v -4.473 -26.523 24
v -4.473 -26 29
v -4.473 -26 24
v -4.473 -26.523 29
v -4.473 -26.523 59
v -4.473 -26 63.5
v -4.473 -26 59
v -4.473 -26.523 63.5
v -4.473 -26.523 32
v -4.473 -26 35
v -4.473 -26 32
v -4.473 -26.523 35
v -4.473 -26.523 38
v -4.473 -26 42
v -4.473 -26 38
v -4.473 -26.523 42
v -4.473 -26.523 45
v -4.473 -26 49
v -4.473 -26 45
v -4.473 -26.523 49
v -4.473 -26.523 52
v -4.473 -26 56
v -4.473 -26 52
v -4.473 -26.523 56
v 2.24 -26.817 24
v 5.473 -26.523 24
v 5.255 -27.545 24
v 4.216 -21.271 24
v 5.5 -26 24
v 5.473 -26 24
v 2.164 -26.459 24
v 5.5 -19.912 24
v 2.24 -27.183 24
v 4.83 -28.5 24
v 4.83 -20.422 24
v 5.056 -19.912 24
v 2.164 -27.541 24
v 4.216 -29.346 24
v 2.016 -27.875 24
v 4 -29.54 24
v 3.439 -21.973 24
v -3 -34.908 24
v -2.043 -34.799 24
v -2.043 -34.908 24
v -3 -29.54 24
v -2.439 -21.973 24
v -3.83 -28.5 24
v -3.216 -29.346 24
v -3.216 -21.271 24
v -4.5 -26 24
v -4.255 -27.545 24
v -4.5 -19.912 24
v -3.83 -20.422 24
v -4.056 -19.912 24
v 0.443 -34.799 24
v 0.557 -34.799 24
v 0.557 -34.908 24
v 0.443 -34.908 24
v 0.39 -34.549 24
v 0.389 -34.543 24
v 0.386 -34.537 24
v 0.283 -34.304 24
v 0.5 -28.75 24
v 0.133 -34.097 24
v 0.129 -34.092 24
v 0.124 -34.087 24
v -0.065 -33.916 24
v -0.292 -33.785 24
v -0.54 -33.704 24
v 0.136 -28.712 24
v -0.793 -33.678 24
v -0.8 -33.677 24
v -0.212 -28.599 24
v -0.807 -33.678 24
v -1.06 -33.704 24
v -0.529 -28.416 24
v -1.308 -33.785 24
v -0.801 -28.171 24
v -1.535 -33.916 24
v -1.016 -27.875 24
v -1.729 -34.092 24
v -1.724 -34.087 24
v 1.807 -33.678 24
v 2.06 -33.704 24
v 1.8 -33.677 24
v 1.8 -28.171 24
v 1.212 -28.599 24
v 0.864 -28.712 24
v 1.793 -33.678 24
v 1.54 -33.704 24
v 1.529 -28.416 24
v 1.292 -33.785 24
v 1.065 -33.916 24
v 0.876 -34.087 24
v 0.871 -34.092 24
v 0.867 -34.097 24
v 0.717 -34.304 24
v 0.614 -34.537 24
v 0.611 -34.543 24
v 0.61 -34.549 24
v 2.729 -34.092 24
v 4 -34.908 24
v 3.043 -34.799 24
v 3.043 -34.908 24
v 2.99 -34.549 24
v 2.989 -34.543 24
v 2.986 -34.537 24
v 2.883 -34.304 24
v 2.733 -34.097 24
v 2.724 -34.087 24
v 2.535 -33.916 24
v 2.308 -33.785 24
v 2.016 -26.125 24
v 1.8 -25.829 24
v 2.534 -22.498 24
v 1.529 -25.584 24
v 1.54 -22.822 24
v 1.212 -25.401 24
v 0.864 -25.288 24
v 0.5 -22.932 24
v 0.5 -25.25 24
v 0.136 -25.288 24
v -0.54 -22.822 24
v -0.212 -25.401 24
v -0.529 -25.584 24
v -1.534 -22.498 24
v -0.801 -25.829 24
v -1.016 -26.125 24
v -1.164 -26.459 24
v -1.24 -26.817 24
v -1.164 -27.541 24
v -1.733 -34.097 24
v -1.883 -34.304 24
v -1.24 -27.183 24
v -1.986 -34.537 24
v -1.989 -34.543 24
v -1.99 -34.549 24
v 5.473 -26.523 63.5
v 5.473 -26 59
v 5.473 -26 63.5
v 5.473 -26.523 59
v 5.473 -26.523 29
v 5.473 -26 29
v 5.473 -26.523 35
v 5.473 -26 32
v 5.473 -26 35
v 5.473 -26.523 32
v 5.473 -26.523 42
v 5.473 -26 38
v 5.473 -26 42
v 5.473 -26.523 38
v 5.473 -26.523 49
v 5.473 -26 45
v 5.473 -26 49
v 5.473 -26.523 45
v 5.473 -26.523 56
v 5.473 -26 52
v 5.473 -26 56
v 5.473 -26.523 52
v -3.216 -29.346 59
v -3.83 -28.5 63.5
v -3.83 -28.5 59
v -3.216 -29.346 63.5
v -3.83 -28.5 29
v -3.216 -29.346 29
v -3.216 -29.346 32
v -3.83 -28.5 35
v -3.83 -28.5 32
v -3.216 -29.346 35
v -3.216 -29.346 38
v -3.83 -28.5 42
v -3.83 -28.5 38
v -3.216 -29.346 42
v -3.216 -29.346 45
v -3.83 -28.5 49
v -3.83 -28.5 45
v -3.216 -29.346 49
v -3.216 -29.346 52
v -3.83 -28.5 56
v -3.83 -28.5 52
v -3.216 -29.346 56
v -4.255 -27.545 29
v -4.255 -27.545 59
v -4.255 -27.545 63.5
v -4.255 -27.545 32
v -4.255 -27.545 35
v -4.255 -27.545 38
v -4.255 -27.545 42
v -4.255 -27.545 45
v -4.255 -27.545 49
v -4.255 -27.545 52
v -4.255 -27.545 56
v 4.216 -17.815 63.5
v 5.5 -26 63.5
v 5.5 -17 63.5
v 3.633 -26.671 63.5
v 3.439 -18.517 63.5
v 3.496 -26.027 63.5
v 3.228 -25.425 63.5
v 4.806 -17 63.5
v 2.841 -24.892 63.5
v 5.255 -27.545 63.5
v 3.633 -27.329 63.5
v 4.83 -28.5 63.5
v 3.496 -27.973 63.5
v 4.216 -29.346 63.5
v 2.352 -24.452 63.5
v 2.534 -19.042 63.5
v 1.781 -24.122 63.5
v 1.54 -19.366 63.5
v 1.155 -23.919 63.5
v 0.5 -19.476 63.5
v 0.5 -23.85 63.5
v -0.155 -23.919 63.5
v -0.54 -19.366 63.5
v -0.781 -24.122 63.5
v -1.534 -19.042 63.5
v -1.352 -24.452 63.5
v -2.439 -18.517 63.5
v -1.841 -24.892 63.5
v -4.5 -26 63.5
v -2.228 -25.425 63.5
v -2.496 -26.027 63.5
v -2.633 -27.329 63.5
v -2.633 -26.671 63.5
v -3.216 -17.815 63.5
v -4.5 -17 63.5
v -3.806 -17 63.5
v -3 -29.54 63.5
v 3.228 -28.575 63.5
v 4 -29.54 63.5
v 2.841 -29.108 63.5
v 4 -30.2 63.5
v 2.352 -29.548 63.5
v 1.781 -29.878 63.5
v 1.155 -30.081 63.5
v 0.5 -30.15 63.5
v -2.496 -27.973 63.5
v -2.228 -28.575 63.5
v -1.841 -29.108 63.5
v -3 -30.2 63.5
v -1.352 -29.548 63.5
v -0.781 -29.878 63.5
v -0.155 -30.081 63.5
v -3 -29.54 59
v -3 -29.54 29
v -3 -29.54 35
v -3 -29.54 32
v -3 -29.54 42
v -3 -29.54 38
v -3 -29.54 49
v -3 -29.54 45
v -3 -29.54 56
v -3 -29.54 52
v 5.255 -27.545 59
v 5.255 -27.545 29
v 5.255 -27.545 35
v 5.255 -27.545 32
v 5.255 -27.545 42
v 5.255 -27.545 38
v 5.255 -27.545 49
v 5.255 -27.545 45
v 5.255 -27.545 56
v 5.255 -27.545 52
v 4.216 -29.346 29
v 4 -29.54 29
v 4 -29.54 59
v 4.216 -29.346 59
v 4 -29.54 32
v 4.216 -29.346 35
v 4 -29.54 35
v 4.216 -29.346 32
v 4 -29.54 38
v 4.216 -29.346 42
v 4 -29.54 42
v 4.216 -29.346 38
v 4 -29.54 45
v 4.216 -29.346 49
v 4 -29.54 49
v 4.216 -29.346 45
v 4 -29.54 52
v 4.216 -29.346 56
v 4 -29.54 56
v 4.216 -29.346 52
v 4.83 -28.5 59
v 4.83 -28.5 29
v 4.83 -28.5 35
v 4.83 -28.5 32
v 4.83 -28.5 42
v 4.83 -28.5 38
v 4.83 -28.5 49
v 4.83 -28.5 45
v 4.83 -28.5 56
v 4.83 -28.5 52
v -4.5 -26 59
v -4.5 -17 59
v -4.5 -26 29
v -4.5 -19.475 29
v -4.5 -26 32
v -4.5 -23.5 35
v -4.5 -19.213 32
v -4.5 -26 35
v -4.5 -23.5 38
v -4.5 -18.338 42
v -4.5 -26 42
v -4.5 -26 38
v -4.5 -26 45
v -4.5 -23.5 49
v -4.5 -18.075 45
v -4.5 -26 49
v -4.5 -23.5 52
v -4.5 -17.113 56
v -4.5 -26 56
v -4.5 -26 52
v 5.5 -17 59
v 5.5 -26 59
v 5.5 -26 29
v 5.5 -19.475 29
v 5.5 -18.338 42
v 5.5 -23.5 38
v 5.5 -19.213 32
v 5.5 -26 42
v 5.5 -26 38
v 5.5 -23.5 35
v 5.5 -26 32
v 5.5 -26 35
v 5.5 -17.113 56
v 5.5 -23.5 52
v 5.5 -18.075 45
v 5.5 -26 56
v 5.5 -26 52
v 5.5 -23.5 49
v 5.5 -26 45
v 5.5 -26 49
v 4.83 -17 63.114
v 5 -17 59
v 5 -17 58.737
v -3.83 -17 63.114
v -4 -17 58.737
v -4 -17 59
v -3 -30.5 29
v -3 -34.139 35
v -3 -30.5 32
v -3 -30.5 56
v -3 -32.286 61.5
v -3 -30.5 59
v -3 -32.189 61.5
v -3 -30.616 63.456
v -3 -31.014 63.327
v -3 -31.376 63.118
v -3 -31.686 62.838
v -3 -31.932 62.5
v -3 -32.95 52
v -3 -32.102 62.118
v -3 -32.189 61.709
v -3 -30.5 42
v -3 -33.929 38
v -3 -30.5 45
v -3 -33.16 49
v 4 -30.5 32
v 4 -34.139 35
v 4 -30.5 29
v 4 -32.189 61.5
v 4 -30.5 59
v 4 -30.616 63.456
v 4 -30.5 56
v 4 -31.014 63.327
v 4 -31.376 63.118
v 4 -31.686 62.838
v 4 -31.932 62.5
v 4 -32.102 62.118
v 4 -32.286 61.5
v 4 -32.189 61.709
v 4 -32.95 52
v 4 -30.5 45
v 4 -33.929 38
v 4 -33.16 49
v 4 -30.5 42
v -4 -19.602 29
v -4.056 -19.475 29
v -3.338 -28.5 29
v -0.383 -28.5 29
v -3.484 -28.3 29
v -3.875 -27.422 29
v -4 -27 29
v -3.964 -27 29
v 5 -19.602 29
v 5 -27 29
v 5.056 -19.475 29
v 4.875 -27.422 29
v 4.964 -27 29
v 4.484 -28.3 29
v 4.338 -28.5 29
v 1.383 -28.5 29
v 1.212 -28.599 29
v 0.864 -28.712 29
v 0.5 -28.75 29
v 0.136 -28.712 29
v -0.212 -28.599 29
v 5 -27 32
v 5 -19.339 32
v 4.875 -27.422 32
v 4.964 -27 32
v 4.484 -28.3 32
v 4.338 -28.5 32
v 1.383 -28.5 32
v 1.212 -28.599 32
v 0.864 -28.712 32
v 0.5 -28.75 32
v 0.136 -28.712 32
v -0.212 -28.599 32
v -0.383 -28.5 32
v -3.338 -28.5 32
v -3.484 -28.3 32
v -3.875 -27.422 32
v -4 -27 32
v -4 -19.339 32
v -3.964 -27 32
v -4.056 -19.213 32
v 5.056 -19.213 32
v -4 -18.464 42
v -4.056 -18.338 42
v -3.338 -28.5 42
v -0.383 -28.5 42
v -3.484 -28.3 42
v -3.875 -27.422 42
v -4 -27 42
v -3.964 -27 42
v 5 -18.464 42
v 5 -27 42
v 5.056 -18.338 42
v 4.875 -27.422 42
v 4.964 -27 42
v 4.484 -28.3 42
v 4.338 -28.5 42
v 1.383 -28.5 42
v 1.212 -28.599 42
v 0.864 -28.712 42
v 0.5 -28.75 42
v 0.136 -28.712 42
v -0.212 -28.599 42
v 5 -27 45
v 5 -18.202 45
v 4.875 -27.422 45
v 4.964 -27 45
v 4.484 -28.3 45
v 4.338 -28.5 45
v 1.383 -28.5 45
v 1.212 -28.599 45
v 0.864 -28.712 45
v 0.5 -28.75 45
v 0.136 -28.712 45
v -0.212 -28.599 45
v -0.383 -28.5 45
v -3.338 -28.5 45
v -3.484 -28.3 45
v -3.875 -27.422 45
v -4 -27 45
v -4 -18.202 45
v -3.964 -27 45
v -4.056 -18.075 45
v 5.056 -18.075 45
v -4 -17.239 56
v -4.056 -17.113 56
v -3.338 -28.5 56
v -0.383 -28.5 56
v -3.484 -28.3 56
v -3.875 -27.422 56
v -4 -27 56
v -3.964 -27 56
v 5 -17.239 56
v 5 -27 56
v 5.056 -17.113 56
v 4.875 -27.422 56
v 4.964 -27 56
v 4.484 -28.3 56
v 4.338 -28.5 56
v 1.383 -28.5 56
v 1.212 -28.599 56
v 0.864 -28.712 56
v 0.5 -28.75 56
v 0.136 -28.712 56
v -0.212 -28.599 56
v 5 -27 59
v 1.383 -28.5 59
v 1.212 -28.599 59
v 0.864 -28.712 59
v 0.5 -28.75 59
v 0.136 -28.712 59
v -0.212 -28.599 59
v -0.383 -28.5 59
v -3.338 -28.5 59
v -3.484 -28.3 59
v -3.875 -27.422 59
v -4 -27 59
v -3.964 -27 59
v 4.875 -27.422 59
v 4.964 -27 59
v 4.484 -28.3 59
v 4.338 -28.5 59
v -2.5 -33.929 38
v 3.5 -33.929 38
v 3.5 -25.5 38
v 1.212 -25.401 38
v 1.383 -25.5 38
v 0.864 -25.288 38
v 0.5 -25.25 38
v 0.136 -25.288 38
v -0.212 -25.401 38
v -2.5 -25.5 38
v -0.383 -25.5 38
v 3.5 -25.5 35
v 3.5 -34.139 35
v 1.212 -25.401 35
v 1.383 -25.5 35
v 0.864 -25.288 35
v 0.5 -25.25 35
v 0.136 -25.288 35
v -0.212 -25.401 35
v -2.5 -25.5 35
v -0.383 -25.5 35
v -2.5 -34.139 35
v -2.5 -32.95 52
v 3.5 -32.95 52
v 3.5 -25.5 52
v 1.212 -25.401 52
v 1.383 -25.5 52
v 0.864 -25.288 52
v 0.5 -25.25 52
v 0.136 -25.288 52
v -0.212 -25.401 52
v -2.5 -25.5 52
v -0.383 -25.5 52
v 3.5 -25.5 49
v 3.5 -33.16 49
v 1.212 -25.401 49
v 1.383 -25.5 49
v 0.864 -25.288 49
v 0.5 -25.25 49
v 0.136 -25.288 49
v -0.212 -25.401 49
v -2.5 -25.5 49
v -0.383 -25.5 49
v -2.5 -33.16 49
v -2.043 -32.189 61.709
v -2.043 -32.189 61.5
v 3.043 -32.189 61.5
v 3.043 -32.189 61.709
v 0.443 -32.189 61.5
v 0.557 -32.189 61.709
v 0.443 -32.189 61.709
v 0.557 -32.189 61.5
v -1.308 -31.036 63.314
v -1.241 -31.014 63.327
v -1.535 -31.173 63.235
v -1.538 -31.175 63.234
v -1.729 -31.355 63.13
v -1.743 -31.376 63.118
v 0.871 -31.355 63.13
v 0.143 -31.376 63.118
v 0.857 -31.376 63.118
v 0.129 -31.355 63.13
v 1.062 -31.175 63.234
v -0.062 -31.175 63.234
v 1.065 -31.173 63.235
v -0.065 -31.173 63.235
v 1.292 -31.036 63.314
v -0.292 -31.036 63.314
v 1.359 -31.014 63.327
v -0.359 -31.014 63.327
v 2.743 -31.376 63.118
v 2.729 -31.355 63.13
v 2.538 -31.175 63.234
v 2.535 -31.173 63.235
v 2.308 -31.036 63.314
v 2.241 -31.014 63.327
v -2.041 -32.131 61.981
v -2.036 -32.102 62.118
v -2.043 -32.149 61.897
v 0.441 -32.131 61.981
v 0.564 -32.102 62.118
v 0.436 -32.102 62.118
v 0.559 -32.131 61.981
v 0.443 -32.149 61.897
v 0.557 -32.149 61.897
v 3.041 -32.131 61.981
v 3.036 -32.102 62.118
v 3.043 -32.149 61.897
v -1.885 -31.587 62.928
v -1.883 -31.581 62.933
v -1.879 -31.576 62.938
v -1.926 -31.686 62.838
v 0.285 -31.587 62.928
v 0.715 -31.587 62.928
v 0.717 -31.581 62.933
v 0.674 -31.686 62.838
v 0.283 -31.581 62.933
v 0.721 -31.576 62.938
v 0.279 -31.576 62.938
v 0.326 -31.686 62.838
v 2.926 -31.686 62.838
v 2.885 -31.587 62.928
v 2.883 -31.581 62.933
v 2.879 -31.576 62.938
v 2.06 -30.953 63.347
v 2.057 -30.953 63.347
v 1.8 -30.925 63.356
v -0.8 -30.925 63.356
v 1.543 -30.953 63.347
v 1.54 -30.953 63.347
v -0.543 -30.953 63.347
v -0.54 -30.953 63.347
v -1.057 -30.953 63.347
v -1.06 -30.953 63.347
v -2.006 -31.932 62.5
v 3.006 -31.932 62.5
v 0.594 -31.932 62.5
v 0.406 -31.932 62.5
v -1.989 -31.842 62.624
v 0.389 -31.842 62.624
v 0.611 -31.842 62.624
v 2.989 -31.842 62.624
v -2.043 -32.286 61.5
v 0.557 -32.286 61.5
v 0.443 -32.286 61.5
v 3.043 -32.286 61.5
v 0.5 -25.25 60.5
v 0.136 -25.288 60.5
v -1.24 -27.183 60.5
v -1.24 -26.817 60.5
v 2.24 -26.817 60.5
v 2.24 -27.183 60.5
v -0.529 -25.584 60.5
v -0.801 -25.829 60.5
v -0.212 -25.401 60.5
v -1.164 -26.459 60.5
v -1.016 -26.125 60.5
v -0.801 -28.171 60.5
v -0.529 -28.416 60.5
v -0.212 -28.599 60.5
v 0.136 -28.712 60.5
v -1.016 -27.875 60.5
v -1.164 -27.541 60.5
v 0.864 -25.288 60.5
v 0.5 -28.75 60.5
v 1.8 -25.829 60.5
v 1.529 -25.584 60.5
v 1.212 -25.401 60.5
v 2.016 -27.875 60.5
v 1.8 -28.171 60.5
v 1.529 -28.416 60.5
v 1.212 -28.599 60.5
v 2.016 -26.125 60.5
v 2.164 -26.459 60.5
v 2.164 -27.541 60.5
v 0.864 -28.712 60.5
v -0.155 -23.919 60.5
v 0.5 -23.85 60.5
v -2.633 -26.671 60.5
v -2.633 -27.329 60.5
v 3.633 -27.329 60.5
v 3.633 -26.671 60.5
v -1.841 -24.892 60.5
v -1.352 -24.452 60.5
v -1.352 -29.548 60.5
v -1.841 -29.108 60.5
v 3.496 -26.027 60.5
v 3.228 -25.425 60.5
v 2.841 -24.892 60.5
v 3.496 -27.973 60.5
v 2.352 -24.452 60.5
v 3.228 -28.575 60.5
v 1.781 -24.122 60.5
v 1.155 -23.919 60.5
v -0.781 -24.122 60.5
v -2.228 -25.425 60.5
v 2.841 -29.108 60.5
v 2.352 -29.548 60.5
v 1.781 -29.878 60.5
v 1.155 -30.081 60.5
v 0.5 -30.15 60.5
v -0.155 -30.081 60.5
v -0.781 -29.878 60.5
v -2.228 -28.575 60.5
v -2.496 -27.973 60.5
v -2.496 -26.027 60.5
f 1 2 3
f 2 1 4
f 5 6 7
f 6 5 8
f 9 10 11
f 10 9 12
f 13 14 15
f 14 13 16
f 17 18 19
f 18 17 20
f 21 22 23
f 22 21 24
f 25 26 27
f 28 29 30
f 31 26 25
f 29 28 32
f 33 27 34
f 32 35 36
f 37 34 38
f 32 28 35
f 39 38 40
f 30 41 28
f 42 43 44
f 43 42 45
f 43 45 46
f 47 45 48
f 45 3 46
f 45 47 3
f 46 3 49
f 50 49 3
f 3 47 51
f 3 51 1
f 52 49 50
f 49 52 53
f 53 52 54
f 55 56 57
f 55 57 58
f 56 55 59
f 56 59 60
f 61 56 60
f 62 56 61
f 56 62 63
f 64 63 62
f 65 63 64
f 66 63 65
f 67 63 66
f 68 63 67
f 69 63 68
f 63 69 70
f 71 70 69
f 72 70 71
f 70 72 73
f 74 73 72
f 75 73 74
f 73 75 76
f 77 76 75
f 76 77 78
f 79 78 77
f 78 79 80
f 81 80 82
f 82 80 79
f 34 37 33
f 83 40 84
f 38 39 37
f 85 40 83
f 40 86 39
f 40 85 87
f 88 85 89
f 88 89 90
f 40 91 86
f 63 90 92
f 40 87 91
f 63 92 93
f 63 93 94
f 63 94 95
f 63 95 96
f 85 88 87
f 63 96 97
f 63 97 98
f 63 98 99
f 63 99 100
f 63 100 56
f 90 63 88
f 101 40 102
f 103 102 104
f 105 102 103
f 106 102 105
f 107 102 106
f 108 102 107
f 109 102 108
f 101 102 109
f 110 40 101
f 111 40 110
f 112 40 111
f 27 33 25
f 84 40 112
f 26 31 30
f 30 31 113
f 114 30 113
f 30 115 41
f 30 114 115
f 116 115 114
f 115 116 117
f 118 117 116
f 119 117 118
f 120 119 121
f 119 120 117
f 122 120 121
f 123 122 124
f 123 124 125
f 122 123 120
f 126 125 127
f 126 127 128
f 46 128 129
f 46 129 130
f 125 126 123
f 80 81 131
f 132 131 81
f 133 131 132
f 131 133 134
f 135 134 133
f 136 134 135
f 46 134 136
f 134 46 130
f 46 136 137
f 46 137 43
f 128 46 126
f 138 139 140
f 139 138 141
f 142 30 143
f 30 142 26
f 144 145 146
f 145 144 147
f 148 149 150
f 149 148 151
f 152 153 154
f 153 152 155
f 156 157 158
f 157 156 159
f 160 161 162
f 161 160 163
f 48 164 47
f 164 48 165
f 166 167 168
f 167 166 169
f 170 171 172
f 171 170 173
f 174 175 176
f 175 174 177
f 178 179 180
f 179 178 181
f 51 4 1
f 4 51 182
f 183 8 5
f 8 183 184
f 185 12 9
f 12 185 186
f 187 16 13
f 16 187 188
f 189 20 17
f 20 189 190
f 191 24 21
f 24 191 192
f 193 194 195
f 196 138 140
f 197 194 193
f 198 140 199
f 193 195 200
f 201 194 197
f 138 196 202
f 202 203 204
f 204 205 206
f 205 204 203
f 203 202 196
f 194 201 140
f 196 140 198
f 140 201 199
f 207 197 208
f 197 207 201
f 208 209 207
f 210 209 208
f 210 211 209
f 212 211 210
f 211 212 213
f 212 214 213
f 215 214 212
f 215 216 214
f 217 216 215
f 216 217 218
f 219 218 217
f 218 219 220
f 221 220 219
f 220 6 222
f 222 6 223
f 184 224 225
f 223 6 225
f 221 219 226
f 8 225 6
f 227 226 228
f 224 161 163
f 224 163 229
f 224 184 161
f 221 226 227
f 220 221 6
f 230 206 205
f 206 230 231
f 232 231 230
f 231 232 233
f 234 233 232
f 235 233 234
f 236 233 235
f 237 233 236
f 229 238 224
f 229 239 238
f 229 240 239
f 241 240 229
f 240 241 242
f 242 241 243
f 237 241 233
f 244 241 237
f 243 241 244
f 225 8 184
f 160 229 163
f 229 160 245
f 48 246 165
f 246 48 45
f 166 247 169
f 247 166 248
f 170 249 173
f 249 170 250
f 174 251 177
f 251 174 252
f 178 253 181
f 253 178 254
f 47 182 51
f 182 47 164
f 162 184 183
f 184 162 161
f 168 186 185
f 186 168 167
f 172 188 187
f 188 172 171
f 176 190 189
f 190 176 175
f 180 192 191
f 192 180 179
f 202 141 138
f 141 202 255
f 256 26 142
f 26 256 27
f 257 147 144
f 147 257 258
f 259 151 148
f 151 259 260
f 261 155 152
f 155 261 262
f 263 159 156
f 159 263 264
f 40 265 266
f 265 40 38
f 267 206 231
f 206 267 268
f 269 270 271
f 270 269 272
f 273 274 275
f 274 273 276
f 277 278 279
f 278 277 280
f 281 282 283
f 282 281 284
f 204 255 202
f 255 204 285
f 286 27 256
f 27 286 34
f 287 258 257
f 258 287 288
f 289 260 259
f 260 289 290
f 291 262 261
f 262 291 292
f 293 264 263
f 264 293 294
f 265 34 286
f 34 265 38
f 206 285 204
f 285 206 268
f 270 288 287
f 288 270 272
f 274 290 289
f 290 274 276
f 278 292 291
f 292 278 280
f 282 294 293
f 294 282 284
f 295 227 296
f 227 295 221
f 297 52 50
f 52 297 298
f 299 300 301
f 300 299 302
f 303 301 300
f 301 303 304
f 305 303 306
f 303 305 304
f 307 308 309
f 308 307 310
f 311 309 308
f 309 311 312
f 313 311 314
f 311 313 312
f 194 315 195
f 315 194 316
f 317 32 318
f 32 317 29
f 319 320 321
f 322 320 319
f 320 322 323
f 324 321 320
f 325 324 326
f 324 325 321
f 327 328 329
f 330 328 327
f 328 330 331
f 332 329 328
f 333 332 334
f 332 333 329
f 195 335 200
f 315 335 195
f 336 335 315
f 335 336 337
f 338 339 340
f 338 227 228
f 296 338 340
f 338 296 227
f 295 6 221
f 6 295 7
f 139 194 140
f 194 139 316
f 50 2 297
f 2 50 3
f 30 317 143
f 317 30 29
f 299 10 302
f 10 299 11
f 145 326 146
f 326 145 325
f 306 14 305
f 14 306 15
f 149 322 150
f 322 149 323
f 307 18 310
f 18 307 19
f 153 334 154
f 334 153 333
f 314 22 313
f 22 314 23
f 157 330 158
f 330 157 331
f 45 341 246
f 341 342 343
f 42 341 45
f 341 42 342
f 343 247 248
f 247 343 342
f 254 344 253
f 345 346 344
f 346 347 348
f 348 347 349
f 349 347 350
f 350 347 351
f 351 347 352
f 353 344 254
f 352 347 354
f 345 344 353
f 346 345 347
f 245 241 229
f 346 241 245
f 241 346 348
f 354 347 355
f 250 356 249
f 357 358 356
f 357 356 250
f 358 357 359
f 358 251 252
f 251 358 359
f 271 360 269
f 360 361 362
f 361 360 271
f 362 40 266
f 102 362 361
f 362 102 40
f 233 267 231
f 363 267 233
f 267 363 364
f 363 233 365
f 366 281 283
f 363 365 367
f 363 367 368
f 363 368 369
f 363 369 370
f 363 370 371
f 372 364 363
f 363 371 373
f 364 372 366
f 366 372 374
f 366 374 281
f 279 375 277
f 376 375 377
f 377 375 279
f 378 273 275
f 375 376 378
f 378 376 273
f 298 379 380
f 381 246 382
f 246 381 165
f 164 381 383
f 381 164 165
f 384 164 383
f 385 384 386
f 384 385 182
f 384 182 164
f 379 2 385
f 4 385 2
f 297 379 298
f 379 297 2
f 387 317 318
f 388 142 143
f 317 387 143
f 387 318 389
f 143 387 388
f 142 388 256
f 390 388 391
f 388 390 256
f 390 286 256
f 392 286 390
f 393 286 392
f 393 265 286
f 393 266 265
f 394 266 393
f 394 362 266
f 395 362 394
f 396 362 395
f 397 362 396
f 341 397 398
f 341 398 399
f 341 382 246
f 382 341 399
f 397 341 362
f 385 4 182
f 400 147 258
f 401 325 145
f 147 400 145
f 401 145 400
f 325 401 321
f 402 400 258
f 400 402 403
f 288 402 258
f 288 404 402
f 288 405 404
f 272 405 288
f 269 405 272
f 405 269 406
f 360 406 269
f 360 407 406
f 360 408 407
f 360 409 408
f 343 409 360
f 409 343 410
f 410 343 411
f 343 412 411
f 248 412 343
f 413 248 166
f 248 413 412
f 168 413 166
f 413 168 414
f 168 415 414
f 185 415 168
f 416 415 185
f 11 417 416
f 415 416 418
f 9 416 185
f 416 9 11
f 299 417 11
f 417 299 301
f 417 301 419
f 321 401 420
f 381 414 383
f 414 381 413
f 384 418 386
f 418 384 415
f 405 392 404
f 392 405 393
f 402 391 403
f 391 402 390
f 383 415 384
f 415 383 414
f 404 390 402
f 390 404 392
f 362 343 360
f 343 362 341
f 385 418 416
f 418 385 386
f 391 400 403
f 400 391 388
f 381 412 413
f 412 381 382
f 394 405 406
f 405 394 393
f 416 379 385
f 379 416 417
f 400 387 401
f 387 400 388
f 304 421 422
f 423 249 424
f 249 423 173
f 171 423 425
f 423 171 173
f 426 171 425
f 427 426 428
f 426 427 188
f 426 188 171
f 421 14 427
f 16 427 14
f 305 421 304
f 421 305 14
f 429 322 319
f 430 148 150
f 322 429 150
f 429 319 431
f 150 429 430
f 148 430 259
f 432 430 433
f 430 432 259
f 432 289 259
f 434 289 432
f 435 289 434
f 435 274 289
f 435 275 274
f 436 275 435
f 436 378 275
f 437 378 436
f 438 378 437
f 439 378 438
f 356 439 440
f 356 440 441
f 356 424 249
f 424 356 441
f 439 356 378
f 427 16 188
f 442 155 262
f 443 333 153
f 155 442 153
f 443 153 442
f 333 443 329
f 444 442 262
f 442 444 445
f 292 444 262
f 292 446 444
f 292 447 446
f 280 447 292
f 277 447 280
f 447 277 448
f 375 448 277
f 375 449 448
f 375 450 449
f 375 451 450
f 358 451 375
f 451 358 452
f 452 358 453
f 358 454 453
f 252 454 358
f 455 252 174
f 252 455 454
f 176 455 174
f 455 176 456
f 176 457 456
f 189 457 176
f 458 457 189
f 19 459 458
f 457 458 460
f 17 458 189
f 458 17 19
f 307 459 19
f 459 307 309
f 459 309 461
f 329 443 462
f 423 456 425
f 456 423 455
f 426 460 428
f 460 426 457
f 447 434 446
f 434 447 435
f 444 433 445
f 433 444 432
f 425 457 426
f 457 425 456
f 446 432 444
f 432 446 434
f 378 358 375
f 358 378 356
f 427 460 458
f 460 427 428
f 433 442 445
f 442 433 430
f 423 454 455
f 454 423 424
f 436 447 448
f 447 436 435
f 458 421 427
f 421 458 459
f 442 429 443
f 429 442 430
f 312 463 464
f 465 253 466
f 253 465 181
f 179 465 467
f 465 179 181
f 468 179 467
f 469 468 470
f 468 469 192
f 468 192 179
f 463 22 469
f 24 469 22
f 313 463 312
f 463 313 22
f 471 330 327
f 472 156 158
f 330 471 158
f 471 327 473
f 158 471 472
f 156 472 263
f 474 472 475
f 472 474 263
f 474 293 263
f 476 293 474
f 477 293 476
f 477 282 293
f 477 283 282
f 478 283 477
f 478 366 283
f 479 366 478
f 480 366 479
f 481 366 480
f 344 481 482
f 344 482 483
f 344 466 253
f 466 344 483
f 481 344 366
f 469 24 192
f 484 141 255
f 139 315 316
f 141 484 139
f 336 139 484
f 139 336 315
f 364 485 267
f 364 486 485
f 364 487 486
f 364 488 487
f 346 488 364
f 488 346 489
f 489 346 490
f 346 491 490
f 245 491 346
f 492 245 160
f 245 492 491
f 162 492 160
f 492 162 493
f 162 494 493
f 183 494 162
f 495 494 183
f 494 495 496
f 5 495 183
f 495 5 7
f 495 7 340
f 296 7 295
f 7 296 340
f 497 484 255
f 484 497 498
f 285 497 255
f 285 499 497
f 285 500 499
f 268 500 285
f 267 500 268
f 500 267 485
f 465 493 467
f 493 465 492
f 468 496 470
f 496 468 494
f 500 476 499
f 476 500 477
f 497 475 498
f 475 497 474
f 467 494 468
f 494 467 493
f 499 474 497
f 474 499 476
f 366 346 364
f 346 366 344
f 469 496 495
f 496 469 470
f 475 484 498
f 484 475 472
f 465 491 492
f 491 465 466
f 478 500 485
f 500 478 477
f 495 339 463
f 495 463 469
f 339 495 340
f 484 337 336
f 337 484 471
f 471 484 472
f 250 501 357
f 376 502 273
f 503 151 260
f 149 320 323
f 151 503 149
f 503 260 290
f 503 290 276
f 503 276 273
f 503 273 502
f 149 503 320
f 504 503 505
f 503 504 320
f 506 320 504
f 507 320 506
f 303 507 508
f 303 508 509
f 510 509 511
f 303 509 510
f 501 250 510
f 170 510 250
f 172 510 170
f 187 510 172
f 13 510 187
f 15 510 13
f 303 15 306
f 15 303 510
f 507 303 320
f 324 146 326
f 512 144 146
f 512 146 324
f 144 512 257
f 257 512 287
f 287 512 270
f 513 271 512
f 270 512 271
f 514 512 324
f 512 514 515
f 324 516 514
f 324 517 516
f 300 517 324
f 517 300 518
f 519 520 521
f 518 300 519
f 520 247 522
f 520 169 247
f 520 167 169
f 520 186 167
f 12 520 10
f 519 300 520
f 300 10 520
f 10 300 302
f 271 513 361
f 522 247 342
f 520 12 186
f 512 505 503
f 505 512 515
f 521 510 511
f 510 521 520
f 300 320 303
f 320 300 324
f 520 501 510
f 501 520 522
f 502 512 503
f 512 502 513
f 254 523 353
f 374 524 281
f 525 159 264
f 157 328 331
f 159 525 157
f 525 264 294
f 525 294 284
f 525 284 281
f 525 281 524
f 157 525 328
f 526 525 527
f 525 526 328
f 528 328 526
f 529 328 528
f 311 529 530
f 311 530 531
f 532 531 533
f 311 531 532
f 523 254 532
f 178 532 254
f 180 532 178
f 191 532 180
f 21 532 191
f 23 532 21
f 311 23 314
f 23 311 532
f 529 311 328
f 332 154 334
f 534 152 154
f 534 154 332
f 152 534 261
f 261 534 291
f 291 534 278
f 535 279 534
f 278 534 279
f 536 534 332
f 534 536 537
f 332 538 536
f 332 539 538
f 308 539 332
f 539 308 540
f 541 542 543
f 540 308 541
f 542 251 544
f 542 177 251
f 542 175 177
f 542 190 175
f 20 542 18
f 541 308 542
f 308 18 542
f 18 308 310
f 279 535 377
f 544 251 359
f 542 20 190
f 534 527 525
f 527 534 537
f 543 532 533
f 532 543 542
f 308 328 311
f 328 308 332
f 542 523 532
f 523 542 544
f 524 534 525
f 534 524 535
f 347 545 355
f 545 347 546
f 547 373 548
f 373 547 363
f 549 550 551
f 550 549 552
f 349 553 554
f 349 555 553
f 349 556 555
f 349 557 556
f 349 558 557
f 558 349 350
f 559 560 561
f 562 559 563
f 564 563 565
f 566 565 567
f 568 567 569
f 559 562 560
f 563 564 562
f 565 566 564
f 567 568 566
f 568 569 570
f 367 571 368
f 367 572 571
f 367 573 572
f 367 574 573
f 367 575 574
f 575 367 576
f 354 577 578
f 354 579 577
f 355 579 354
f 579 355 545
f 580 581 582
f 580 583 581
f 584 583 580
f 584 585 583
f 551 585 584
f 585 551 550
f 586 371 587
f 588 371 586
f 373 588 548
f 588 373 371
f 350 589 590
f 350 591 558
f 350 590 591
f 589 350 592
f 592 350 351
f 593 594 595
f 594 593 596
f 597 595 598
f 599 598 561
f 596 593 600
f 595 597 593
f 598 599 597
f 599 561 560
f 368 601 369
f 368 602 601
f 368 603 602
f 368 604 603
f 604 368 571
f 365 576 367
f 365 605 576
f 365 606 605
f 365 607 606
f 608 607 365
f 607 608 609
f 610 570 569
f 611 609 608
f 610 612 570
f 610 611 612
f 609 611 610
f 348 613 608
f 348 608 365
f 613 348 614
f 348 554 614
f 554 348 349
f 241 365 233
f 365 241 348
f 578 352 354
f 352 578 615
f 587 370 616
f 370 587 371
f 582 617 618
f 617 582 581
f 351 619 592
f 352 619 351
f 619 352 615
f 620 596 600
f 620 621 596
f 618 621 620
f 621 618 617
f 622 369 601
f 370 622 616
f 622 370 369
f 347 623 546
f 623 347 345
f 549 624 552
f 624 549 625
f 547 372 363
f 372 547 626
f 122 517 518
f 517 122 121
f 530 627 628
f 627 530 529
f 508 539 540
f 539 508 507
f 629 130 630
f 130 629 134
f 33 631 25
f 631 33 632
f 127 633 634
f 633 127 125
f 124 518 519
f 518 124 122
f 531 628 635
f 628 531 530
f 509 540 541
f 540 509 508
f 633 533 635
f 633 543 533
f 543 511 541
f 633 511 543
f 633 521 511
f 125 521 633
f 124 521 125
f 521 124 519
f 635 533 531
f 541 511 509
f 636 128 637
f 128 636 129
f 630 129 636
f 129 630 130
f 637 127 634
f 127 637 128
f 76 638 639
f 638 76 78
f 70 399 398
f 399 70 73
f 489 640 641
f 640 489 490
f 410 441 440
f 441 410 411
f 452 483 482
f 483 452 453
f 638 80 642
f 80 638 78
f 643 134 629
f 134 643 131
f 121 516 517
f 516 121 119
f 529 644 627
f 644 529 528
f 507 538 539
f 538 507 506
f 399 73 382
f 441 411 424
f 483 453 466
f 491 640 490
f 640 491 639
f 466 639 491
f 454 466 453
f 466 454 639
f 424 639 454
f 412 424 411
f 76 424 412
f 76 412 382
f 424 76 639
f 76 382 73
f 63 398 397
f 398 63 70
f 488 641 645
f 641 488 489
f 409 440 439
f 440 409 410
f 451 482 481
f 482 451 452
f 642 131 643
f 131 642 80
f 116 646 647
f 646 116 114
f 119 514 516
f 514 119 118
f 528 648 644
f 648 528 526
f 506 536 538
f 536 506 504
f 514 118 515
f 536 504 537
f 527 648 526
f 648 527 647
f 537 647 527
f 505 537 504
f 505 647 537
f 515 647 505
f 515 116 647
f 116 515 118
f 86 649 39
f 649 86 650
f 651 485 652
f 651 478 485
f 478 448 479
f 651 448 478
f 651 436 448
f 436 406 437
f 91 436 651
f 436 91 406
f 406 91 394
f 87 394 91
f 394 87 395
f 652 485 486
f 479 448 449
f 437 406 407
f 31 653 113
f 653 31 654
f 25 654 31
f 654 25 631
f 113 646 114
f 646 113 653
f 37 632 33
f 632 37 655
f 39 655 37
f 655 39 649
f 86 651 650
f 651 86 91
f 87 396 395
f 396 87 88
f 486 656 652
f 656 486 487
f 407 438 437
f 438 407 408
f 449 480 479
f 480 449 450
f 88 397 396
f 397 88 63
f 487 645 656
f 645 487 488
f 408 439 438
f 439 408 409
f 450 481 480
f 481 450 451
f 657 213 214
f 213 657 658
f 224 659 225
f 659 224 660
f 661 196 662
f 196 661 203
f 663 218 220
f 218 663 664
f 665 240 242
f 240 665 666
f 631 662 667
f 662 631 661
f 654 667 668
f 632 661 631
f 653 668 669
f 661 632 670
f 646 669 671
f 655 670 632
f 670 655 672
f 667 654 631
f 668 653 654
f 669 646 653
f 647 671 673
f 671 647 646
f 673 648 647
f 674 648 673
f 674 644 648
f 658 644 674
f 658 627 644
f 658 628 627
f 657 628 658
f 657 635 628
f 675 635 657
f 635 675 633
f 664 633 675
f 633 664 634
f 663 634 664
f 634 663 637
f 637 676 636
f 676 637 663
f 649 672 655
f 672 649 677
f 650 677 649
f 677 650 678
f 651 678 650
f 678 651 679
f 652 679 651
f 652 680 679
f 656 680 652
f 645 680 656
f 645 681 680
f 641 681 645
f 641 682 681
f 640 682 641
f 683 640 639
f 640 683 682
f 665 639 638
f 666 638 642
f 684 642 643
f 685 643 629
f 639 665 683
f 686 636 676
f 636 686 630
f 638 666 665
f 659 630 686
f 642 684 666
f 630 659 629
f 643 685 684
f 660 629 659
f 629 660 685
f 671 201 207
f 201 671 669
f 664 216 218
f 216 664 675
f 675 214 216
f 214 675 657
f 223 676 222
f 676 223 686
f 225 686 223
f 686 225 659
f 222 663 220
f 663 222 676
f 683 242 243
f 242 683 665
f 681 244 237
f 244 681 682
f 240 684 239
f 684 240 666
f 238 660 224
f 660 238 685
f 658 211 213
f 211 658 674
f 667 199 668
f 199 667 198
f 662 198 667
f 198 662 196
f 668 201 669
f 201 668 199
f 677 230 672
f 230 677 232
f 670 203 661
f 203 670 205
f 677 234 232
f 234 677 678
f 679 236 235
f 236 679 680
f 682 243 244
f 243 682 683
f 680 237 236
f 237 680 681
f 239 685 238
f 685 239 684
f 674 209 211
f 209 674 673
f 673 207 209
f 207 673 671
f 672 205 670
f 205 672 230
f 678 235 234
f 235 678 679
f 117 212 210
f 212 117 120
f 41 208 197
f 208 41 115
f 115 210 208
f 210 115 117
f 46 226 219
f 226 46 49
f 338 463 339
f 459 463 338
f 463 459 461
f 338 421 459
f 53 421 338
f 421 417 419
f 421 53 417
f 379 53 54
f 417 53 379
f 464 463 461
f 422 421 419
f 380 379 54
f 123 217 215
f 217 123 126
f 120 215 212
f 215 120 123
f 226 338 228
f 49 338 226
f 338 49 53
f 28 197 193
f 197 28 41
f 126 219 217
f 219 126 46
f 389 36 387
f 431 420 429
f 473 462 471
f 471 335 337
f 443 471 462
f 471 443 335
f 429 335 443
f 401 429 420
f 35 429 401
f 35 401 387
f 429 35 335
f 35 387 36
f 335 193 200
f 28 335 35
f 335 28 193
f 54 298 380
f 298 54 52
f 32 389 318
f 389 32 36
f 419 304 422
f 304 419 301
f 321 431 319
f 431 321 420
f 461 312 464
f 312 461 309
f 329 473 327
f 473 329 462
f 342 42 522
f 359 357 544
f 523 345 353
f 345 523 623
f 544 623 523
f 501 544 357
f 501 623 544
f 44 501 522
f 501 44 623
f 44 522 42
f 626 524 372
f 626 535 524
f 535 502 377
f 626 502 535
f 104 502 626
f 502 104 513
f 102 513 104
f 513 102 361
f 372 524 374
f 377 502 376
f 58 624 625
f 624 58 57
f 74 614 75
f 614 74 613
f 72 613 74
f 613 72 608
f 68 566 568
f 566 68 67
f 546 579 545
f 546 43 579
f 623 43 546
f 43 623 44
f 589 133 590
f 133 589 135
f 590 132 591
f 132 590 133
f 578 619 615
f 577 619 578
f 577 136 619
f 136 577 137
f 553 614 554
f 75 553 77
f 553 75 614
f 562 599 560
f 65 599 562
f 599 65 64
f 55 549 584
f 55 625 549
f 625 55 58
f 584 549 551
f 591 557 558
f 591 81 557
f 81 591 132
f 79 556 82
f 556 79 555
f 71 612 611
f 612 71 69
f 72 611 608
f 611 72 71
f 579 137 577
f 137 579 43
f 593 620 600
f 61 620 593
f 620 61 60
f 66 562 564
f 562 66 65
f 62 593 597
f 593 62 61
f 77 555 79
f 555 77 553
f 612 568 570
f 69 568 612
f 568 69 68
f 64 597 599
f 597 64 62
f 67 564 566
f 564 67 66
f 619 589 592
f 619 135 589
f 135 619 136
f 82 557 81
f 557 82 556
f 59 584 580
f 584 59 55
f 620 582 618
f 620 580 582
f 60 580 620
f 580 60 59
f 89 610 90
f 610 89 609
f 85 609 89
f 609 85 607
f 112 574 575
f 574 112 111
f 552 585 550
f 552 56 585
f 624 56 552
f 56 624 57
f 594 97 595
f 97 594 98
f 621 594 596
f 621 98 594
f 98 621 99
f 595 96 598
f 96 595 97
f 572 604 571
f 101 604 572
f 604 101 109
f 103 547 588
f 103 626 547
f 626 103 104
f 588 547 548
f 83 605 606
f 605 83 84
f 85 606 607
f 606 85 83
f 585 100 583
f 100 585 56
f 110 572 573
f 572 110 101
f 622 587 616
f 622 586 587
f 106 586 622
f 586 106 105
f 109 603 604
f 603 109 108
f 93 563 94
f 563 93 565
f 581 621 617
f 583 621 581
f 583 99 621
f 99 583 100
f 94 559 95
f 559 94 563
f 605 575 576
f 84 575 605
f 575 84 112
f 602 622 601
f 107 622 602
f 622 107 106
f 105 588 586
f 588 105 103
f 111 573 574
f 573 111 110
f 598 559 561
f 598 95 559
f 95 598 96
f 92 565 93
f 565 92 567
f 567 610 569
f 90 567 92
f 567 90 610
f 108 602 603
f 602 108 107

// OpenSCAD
// PRUSA iteration4
// cable holder
// GNU GPL v3
// Josef Průša <iam@josefprusa.cz> and contributors
// http://www.reprap.org/wiki/Prusa_Mendel
// http://prusamendel.org


module zip_main()
{
    // ziptie cut for upper cables

    translate([-10, -30.5, 24]) cube([20, 2, 3]);
    translate([-6, -30.5, 24]) cube([2, 20, 3]);
    translate([5, -30.5, 24]) cube([2, 20, 3]);

    difference()
    {
        translate([0.5, -26, 24]) rotate([0, 0, 90]) cylinder(h = 3, r = 6, $fn = 30);
        translate([0.5, -26, 23]) rotate([0, 0, 90]) cylinder(h = 5, r = 4.6, $fn = 30);
        translate([-10, -35.5, 23]) cube([20, 5, 5]);
        translate([-10, -27, 23]) cube([20, 10, 5]);
    }
}


module zip_ext_cables()
{
    // ziptie cut for lower cables
    translate([-10, -25.5, 24]) cube([20, 2, 3]);
    translate([-4.5, -45.5, 24]) cube([2, 20, 3]);
    translate([3.5, -45.5, 24]) cube([2, 20, 3]);
}


module cable_holder()
{
    difference()
    {
        union()
        {
            // base block
            translate([0.5, -26, 24]) rotate([0, 0, 90]) cylinder(h = 39.5, r = 5, $fn = 30);
            translate([-4.5, -26, 24]) cube([10, 9, 39.5]);
            translate([-3, -35, 24]) cube([7, 10, 39.5]);
        }

        // screw
        translate([0.5, -27, 19.5]) rotate([0, 0, 90]) cylinder(h = 42, r = 1.75, $fn = 30);
        translate([0.5, -27, 19.5 + 41]) rotate([0, 0, 90]) cylinder(h = 5, r = 3.15, $fn = 30);

        // upper cables cut
        translate([0.5, -18, 23]) rotate([0, 5, 90]) cylinder(h = 41, r = 5, $fn = 30);
        translate([-10, -20, 23]) rotate([-5, 0, 0]) cube([20, 9, 45]);

        // lower angled cut
        translate([-10, -44, 23]) rotate([-4, 0, 0]) cube([20, 9, 45]);

        // wires
        translate([-0.8, -35, 23]) rotate([0, 4, 90]) cylinder(h = 41, r = 1.25, $fn = 30);
        translate([1.8, -35, 23]) rotate([0, 4, 90]) cylinder(h = 41, r = 1.25, $fn = 30);

        // ziptie openings
        translate([0, 0, 5]) zip_main();
        translate([0, 0, 18]) zip_main();
        translate([0, 0, 32]) zip_main();
        translate([0, 0, 11]) zip_ext_cables();
        translate([0, 0, 25]) zip_ext_cables();

        // round edge cut
        translate([0, 1.8, -1.5])
        difference()
        {
            translate([-10, -32, 63]) rotate([0, 90, 0]) cylinder(h = 41, r = 4, $fn = 30);
            translate([-10, -32, 63]) rotate([0, 90, 0]) cylinder(h = 41, r = 2, $fn = 30);
            translate([-10, -36, 53]) rotate([0, 0, 0]) cube([20, 9, 10]);
            translate([-10, -32, 58]) rotate([0, 0, 0]) cube([20, 9, 10]);
        }
    }
}

cable_holder();
